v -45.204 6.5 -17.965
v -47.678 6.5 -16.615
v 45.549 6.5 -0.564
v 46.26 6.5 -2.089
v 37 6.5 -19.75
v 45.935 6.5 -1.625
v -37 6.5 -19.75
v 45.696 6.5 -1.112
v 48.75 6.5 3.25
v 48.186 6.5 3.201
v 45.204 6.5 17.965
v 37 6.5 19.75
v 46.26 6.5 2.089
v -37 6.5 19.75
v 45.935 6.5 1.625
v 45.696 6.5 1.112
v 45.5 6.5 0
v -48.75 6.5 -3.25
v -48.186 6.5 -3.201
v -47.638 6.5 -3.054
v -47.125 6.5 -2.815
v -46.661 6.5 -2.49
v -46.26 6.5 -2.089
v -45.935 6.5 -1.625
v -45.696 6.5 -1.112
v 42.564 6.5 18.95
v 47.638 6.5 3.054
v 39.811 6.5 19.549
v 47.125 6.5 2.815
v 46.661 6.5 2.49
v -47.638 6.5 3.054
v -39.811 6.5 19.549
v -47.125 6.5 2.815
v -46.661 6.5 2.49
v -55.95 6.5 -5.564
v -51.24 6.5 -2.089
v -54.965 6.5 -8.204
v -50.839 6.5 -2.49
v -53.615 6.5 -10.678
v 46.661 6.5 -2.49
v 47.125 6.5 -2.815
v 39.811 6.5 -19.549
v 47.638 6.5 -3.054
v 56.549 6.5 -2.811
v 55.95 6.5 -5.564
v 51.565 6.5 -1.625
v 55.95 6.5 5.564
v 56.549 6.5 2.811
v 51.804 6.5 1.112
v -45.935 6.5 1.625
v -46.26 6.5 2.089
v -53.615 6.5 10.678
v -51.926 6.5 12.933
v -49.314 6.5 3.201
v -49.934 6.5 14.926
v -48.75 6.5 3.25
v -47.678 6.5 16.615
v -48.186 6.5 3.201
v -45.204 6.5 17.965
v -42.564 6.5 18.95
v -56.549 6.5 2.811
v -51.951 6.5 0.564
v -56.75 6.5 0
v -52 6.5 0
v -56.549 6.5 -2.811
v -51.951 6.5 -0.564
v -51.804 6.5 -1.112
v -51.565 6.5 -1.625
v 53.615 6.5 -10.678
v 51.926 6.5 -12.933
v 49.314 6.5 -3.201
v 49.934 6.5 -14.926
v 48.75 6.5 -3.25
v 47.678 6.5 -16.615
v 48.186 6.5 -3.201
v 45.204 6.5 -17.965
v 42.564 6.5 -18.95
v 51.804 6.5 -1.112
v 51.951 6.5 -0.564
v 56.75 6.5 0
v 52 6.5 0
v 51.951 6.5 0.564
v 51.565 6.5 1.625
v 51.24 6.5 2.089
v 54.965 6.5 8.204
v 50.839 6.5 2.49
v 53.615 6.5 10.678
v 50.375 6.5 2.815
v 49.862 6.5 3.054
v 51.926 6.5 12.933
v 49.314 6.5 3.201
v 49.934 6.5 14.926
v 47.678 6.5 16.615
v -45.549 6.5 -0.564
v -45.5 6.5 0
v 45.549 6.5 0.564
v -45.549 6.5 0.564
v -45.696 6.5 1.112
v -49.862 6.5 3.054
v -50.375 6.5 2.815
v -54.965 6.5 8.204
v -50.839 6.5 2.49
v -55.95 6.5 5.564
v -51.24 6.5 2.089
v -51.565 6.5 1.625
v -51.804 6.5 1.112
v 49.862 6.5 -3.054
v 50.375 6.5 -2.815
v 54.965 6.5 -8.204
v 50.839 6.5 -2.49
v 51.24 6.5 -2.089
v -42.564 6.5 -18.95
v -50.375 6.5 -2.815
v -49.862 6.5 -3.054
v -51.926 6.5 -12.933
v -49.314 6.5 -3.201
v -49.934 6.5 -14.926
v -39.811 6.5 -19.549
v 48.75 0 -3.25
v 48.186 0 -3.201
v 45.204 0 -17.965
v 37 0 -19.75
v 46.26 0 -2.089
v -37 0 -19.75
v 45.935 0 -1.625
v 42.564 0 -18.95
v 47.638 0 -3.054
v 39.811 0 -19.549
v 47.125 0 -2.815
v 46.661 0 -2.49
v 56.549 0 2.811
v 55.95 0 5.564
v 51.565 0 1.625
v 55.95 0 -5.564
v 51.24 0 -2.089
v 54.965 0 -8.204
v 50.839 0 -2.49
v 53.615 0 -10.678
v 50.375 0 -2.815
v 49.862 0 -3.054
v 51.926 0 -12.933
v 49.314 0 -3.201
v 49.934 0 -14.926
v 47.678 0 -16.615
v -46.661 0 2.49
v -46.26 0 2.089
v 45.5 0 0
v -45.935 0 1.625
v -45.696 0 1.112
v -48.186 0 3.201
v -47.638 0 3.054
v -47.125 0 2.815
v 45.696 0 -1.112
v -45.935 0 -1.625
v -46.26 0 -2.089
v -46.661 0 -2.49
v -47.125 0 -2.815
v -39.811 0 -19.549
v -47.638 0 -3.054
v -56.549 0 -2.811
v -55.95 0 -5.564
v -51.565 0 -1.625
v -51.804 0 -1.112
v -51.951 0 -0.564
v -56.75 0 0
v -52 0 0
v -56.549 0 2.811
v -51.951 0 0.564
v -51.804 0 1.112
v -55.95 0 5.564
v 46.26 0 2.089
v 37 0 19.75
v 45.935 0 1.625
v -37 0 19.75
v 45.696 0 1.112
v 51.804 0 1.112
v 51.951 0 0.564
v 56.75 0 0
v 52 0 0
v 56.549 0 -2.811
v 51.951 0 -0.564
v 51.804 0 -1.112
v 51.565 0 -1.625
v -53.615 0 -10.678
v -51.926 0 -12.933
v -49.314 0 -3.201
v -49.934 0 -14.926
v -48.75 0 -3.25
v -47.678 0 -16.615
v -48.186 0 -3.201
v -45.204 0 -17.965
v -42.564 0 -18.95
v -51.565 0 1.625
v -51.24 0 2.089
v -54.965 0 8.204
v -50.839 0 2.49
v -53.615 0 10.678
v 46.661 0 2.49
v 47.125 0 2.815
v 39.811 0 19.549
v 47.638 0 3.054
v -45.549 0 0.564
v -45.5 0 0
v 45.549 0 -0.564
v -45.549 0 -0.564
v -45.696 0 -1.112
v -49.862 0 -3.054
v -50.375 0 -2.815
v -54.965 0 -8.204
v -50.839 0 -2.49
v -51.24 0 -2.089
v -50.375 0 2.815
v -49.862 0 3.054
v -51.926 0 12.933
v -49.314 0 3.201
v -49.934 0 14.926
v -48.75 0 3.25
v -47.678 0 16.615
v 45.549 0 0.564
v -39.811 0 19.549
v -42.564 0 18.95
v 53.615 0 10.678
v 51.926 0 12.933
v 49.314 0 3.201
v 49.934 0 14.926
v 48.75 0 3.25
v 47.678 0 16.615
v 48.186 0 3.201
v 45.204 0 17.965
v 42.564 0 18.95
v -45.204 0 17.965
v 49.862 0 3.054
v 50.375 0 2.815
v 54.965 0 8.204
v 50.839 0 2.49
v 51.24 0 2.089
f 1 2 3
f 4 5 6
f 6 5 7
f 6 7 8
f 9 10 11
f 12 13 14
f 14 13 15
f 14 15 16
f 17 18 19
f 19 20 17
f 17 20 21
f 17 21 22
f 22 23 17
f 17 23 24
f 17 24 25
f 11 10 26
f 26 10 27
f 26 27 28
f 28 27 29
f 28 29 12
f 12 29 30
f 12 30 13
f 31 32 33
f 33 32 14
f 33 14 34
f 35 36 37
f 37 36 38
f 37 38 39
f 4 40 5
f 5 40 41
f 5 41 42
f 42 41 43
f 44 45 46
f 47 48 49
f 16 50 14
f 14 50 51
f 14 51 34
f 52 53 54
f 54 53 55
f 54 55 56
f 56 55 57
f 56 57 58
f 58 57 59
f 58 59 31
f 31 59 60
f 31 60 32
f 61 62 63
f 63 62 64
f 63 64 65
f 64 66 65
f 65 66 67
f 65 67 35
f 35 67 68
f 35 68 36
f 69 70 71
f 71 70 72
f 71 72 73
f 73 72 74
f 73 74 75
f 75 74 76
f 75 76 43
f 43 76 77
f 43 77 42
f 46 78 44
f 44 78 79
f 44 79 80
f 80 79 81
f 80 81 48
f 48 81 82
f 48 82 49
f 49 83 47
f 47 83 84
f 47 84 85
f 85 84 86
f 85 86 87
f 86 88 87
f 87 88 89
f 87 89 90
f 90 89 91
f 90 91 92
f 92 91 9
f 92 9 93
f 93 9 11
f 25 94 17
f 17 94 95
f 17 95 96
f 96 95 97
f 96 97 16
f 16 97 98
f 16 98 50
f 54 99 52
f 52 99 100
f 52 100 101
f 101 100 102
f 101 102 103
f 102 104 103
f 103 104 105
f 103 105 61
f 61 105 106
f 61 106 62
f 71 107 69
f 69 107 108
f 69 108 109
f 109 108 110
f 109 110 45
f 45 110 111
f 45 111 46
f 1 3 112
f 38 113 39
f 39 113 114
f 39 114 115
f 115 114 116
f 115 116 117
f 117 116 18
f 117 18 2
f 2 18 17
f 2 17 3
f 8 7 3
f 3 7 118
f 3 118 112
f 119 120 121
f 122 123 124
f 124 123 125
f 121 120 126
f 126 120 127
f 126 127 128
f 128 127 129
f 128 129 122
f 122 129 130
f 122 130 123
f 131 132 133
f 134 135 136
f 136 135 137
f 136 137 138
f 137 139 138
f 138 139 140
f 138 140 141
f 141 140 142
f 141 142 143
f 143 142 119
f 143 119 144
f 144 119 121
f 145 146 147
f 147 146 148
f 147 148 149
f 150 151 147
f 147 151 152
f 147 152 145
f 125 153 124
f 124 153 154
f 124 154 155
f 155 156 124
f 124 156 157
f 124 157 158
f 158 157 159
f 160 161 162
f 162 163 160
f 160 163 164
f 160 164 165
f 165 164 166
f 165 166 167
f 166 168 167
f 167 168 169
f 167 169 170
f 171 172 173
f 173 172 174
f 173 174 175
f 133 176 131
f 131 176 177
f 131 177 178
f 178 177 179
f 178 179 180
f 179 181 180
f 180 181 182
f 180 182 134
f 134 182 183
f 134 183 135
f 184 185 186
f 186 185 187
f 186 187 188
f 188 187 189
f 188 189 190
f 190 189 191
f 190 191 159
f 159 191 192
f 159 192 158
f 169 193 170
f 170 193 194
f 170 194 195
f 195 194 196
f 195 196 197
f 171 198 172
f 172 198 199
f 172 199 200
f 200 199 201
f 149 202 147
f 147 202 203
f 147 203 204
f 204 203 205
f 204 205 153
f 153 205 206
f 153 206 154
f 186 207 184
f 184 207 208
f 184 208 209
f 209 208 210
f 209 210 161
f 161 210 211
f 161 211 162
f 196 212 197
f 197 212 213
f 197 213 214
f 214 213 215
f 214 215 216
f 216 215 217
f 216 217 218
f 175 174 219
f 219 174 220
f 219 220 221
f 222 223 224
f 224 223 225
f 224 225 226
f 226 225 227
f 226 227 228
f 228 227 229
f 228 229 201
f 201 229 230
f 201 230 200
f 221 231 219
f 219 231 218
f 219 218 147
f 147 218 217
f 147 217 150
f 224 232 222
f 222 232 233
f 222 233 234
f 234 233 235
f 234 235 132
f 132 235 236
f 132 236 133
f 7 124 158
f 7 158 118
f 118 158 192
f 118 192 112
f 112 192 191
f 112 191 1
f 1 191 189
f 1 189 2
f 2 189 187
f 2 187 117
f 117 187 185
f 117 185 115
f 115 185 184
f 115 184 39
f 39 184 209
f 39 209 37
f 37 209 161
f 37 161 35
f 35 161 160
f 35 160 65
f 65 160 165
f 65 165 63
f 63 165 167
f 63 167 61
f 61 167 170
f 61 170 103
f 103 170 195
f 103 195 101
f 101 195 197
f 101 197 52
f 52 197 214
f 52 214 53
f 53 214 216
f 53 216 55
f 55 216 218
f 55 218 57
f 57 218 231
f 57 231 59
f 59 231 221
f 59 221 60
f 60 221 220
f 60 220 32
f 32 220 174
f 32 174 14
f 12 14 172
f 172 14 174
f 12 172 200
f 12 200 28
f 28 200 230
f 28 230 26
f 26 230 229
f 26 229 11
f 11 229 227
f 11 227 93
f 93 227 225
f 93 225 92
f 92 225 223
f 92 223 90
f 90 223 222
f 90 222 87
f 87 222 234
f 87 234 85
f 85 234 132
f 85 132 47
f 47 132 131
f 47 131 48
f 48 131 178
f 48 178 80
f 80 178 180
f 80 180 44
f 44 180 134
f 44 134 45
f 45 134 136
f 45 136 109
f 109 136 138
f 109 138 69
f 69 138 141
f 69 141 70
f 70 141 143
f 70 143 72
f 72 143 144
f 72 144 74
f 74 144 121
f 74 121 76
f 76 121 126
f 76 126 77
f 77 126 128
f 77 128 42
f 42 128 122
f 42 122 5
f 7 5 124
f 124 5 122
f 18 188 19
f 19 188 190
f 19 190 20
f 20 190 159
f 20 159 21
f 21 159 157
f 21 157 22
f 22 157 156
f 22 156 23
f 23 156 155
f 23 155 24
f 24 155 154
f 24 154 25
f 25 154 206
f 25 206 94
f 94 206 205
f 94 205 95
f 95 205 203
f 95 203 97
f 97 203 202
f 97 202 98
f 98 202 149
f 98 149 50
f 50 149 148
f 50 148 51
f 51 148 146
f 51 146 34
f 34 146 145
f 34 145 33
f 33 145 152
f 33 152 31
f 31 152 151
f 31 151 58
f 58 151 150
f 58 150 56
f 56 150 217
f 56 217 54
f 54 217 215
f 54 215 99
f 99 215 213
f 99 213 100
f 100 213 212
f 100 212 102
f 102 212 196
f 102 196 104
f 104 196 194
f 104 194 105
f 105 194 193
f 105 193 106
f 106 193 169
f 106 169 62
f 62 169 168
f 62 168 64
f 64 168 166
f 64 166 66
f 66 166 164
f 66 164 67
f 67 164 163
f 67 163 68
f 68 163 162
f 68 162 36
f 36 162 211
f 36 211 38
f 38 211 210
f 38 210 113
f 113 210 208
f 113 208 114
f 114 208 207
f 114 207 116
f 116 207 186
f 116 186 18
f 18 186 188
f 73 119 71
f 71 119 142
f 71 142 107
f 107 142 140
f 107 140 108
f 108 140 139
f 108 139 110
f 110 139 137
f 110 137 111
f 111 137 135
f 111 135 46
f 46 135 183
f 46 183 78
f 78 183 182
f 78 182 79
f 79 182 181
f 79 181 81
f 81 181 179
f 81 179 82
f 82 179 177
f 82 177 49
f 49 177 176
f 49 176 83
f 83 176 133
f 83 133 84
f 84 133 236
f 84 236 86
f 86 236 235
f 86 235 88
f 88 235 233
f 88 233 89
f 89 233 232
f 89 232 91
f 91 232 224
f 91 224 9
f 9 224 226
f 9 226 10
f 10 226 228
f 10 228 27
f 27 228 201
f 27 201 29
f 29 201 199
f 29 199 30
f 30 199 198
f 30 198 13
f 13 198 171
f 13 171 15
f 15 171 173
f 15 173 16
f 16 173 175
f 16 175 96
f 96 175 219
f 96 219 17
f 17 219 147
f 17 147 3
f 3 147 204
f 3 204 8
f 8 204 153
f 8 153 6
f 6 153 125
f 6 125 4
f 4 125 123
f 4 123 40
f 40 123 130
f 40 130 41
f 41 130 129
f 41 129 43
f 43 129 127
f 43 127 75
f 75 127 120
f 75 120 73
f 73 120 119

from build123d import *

# Parameters (mm, degrees)
SKETCH1_R           = 3.25
BOSS_EXTRUDE1_DEPTH = 6.5


with BuildPart() as part:
    # Sketch1 → Boss-Extrude1 (new body)
    with BuildSketch(Plane(origin=(0, 0, 0), x_dir=(1, 0, 0), z_dir=(0, 1, 0))):
        with BuildLine():
            Line((0, 19.75), (37, 19.75))
            ThreePointArc((37, 19.75), (56.75, 0), (37, -19.75))
            Line((37, -19.75), (0, -19.75))
            Line((0, -19.75), (-37, -19.75))
            ThreePointArc((-37, -19.75), (-56.75, 0), (-37, 19.75))
            Line((-37, 19.75), (0, 19.75))
        make_face()
        with Locations(Location((-48.75, 0, 0), (0, 0, 90))):
            Circle(SKETCH1_R, mode=Mode.SUBTRACT)
        with Locations(Location((48.75, 0, 0), (0, 0, 90))):
            Circle(SKETCH1_R, mode=Mode.SUBTRACT)
    extrude(amount=BOSS_EXTRUDE1_DEPTH)


solid = part.part
